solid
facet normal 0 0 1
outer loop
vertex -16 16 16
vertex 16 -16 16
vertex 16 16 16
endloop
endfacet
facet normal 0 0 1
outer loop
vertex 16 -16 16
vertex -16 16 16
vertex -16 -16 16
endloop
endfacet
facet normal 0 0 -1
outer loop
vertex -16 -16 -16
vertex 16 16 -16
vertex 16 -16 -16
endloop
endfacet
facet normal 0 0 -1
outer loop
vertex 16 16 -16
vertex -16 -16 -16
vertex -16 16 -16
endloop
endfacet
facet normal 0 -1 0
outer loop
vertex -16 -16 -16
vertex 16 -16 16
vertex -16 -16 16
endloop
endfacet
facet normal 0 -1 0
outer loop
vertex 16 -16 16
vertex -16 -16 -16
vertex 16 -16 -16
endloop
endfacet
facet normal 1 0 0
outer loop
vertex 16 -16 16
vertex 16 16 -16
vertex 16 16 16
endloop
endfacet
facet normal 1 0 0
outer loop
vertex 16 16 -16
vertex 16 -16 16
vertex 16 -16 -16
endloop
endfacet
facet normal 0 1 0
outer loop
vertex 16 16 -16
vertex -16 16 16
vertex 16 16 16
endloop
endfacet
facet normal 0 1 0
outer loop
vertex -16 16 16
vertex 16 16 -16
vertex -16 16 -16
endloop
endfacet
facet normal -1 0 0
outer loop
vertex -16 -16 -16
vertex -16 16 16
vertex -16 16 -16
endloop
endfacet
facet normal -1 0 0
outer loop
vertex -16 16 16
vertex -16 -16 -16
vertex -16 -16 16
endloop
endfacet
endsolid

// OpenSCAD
size=32; //block=32 //item=8


cube([size,size,size],center=true);
